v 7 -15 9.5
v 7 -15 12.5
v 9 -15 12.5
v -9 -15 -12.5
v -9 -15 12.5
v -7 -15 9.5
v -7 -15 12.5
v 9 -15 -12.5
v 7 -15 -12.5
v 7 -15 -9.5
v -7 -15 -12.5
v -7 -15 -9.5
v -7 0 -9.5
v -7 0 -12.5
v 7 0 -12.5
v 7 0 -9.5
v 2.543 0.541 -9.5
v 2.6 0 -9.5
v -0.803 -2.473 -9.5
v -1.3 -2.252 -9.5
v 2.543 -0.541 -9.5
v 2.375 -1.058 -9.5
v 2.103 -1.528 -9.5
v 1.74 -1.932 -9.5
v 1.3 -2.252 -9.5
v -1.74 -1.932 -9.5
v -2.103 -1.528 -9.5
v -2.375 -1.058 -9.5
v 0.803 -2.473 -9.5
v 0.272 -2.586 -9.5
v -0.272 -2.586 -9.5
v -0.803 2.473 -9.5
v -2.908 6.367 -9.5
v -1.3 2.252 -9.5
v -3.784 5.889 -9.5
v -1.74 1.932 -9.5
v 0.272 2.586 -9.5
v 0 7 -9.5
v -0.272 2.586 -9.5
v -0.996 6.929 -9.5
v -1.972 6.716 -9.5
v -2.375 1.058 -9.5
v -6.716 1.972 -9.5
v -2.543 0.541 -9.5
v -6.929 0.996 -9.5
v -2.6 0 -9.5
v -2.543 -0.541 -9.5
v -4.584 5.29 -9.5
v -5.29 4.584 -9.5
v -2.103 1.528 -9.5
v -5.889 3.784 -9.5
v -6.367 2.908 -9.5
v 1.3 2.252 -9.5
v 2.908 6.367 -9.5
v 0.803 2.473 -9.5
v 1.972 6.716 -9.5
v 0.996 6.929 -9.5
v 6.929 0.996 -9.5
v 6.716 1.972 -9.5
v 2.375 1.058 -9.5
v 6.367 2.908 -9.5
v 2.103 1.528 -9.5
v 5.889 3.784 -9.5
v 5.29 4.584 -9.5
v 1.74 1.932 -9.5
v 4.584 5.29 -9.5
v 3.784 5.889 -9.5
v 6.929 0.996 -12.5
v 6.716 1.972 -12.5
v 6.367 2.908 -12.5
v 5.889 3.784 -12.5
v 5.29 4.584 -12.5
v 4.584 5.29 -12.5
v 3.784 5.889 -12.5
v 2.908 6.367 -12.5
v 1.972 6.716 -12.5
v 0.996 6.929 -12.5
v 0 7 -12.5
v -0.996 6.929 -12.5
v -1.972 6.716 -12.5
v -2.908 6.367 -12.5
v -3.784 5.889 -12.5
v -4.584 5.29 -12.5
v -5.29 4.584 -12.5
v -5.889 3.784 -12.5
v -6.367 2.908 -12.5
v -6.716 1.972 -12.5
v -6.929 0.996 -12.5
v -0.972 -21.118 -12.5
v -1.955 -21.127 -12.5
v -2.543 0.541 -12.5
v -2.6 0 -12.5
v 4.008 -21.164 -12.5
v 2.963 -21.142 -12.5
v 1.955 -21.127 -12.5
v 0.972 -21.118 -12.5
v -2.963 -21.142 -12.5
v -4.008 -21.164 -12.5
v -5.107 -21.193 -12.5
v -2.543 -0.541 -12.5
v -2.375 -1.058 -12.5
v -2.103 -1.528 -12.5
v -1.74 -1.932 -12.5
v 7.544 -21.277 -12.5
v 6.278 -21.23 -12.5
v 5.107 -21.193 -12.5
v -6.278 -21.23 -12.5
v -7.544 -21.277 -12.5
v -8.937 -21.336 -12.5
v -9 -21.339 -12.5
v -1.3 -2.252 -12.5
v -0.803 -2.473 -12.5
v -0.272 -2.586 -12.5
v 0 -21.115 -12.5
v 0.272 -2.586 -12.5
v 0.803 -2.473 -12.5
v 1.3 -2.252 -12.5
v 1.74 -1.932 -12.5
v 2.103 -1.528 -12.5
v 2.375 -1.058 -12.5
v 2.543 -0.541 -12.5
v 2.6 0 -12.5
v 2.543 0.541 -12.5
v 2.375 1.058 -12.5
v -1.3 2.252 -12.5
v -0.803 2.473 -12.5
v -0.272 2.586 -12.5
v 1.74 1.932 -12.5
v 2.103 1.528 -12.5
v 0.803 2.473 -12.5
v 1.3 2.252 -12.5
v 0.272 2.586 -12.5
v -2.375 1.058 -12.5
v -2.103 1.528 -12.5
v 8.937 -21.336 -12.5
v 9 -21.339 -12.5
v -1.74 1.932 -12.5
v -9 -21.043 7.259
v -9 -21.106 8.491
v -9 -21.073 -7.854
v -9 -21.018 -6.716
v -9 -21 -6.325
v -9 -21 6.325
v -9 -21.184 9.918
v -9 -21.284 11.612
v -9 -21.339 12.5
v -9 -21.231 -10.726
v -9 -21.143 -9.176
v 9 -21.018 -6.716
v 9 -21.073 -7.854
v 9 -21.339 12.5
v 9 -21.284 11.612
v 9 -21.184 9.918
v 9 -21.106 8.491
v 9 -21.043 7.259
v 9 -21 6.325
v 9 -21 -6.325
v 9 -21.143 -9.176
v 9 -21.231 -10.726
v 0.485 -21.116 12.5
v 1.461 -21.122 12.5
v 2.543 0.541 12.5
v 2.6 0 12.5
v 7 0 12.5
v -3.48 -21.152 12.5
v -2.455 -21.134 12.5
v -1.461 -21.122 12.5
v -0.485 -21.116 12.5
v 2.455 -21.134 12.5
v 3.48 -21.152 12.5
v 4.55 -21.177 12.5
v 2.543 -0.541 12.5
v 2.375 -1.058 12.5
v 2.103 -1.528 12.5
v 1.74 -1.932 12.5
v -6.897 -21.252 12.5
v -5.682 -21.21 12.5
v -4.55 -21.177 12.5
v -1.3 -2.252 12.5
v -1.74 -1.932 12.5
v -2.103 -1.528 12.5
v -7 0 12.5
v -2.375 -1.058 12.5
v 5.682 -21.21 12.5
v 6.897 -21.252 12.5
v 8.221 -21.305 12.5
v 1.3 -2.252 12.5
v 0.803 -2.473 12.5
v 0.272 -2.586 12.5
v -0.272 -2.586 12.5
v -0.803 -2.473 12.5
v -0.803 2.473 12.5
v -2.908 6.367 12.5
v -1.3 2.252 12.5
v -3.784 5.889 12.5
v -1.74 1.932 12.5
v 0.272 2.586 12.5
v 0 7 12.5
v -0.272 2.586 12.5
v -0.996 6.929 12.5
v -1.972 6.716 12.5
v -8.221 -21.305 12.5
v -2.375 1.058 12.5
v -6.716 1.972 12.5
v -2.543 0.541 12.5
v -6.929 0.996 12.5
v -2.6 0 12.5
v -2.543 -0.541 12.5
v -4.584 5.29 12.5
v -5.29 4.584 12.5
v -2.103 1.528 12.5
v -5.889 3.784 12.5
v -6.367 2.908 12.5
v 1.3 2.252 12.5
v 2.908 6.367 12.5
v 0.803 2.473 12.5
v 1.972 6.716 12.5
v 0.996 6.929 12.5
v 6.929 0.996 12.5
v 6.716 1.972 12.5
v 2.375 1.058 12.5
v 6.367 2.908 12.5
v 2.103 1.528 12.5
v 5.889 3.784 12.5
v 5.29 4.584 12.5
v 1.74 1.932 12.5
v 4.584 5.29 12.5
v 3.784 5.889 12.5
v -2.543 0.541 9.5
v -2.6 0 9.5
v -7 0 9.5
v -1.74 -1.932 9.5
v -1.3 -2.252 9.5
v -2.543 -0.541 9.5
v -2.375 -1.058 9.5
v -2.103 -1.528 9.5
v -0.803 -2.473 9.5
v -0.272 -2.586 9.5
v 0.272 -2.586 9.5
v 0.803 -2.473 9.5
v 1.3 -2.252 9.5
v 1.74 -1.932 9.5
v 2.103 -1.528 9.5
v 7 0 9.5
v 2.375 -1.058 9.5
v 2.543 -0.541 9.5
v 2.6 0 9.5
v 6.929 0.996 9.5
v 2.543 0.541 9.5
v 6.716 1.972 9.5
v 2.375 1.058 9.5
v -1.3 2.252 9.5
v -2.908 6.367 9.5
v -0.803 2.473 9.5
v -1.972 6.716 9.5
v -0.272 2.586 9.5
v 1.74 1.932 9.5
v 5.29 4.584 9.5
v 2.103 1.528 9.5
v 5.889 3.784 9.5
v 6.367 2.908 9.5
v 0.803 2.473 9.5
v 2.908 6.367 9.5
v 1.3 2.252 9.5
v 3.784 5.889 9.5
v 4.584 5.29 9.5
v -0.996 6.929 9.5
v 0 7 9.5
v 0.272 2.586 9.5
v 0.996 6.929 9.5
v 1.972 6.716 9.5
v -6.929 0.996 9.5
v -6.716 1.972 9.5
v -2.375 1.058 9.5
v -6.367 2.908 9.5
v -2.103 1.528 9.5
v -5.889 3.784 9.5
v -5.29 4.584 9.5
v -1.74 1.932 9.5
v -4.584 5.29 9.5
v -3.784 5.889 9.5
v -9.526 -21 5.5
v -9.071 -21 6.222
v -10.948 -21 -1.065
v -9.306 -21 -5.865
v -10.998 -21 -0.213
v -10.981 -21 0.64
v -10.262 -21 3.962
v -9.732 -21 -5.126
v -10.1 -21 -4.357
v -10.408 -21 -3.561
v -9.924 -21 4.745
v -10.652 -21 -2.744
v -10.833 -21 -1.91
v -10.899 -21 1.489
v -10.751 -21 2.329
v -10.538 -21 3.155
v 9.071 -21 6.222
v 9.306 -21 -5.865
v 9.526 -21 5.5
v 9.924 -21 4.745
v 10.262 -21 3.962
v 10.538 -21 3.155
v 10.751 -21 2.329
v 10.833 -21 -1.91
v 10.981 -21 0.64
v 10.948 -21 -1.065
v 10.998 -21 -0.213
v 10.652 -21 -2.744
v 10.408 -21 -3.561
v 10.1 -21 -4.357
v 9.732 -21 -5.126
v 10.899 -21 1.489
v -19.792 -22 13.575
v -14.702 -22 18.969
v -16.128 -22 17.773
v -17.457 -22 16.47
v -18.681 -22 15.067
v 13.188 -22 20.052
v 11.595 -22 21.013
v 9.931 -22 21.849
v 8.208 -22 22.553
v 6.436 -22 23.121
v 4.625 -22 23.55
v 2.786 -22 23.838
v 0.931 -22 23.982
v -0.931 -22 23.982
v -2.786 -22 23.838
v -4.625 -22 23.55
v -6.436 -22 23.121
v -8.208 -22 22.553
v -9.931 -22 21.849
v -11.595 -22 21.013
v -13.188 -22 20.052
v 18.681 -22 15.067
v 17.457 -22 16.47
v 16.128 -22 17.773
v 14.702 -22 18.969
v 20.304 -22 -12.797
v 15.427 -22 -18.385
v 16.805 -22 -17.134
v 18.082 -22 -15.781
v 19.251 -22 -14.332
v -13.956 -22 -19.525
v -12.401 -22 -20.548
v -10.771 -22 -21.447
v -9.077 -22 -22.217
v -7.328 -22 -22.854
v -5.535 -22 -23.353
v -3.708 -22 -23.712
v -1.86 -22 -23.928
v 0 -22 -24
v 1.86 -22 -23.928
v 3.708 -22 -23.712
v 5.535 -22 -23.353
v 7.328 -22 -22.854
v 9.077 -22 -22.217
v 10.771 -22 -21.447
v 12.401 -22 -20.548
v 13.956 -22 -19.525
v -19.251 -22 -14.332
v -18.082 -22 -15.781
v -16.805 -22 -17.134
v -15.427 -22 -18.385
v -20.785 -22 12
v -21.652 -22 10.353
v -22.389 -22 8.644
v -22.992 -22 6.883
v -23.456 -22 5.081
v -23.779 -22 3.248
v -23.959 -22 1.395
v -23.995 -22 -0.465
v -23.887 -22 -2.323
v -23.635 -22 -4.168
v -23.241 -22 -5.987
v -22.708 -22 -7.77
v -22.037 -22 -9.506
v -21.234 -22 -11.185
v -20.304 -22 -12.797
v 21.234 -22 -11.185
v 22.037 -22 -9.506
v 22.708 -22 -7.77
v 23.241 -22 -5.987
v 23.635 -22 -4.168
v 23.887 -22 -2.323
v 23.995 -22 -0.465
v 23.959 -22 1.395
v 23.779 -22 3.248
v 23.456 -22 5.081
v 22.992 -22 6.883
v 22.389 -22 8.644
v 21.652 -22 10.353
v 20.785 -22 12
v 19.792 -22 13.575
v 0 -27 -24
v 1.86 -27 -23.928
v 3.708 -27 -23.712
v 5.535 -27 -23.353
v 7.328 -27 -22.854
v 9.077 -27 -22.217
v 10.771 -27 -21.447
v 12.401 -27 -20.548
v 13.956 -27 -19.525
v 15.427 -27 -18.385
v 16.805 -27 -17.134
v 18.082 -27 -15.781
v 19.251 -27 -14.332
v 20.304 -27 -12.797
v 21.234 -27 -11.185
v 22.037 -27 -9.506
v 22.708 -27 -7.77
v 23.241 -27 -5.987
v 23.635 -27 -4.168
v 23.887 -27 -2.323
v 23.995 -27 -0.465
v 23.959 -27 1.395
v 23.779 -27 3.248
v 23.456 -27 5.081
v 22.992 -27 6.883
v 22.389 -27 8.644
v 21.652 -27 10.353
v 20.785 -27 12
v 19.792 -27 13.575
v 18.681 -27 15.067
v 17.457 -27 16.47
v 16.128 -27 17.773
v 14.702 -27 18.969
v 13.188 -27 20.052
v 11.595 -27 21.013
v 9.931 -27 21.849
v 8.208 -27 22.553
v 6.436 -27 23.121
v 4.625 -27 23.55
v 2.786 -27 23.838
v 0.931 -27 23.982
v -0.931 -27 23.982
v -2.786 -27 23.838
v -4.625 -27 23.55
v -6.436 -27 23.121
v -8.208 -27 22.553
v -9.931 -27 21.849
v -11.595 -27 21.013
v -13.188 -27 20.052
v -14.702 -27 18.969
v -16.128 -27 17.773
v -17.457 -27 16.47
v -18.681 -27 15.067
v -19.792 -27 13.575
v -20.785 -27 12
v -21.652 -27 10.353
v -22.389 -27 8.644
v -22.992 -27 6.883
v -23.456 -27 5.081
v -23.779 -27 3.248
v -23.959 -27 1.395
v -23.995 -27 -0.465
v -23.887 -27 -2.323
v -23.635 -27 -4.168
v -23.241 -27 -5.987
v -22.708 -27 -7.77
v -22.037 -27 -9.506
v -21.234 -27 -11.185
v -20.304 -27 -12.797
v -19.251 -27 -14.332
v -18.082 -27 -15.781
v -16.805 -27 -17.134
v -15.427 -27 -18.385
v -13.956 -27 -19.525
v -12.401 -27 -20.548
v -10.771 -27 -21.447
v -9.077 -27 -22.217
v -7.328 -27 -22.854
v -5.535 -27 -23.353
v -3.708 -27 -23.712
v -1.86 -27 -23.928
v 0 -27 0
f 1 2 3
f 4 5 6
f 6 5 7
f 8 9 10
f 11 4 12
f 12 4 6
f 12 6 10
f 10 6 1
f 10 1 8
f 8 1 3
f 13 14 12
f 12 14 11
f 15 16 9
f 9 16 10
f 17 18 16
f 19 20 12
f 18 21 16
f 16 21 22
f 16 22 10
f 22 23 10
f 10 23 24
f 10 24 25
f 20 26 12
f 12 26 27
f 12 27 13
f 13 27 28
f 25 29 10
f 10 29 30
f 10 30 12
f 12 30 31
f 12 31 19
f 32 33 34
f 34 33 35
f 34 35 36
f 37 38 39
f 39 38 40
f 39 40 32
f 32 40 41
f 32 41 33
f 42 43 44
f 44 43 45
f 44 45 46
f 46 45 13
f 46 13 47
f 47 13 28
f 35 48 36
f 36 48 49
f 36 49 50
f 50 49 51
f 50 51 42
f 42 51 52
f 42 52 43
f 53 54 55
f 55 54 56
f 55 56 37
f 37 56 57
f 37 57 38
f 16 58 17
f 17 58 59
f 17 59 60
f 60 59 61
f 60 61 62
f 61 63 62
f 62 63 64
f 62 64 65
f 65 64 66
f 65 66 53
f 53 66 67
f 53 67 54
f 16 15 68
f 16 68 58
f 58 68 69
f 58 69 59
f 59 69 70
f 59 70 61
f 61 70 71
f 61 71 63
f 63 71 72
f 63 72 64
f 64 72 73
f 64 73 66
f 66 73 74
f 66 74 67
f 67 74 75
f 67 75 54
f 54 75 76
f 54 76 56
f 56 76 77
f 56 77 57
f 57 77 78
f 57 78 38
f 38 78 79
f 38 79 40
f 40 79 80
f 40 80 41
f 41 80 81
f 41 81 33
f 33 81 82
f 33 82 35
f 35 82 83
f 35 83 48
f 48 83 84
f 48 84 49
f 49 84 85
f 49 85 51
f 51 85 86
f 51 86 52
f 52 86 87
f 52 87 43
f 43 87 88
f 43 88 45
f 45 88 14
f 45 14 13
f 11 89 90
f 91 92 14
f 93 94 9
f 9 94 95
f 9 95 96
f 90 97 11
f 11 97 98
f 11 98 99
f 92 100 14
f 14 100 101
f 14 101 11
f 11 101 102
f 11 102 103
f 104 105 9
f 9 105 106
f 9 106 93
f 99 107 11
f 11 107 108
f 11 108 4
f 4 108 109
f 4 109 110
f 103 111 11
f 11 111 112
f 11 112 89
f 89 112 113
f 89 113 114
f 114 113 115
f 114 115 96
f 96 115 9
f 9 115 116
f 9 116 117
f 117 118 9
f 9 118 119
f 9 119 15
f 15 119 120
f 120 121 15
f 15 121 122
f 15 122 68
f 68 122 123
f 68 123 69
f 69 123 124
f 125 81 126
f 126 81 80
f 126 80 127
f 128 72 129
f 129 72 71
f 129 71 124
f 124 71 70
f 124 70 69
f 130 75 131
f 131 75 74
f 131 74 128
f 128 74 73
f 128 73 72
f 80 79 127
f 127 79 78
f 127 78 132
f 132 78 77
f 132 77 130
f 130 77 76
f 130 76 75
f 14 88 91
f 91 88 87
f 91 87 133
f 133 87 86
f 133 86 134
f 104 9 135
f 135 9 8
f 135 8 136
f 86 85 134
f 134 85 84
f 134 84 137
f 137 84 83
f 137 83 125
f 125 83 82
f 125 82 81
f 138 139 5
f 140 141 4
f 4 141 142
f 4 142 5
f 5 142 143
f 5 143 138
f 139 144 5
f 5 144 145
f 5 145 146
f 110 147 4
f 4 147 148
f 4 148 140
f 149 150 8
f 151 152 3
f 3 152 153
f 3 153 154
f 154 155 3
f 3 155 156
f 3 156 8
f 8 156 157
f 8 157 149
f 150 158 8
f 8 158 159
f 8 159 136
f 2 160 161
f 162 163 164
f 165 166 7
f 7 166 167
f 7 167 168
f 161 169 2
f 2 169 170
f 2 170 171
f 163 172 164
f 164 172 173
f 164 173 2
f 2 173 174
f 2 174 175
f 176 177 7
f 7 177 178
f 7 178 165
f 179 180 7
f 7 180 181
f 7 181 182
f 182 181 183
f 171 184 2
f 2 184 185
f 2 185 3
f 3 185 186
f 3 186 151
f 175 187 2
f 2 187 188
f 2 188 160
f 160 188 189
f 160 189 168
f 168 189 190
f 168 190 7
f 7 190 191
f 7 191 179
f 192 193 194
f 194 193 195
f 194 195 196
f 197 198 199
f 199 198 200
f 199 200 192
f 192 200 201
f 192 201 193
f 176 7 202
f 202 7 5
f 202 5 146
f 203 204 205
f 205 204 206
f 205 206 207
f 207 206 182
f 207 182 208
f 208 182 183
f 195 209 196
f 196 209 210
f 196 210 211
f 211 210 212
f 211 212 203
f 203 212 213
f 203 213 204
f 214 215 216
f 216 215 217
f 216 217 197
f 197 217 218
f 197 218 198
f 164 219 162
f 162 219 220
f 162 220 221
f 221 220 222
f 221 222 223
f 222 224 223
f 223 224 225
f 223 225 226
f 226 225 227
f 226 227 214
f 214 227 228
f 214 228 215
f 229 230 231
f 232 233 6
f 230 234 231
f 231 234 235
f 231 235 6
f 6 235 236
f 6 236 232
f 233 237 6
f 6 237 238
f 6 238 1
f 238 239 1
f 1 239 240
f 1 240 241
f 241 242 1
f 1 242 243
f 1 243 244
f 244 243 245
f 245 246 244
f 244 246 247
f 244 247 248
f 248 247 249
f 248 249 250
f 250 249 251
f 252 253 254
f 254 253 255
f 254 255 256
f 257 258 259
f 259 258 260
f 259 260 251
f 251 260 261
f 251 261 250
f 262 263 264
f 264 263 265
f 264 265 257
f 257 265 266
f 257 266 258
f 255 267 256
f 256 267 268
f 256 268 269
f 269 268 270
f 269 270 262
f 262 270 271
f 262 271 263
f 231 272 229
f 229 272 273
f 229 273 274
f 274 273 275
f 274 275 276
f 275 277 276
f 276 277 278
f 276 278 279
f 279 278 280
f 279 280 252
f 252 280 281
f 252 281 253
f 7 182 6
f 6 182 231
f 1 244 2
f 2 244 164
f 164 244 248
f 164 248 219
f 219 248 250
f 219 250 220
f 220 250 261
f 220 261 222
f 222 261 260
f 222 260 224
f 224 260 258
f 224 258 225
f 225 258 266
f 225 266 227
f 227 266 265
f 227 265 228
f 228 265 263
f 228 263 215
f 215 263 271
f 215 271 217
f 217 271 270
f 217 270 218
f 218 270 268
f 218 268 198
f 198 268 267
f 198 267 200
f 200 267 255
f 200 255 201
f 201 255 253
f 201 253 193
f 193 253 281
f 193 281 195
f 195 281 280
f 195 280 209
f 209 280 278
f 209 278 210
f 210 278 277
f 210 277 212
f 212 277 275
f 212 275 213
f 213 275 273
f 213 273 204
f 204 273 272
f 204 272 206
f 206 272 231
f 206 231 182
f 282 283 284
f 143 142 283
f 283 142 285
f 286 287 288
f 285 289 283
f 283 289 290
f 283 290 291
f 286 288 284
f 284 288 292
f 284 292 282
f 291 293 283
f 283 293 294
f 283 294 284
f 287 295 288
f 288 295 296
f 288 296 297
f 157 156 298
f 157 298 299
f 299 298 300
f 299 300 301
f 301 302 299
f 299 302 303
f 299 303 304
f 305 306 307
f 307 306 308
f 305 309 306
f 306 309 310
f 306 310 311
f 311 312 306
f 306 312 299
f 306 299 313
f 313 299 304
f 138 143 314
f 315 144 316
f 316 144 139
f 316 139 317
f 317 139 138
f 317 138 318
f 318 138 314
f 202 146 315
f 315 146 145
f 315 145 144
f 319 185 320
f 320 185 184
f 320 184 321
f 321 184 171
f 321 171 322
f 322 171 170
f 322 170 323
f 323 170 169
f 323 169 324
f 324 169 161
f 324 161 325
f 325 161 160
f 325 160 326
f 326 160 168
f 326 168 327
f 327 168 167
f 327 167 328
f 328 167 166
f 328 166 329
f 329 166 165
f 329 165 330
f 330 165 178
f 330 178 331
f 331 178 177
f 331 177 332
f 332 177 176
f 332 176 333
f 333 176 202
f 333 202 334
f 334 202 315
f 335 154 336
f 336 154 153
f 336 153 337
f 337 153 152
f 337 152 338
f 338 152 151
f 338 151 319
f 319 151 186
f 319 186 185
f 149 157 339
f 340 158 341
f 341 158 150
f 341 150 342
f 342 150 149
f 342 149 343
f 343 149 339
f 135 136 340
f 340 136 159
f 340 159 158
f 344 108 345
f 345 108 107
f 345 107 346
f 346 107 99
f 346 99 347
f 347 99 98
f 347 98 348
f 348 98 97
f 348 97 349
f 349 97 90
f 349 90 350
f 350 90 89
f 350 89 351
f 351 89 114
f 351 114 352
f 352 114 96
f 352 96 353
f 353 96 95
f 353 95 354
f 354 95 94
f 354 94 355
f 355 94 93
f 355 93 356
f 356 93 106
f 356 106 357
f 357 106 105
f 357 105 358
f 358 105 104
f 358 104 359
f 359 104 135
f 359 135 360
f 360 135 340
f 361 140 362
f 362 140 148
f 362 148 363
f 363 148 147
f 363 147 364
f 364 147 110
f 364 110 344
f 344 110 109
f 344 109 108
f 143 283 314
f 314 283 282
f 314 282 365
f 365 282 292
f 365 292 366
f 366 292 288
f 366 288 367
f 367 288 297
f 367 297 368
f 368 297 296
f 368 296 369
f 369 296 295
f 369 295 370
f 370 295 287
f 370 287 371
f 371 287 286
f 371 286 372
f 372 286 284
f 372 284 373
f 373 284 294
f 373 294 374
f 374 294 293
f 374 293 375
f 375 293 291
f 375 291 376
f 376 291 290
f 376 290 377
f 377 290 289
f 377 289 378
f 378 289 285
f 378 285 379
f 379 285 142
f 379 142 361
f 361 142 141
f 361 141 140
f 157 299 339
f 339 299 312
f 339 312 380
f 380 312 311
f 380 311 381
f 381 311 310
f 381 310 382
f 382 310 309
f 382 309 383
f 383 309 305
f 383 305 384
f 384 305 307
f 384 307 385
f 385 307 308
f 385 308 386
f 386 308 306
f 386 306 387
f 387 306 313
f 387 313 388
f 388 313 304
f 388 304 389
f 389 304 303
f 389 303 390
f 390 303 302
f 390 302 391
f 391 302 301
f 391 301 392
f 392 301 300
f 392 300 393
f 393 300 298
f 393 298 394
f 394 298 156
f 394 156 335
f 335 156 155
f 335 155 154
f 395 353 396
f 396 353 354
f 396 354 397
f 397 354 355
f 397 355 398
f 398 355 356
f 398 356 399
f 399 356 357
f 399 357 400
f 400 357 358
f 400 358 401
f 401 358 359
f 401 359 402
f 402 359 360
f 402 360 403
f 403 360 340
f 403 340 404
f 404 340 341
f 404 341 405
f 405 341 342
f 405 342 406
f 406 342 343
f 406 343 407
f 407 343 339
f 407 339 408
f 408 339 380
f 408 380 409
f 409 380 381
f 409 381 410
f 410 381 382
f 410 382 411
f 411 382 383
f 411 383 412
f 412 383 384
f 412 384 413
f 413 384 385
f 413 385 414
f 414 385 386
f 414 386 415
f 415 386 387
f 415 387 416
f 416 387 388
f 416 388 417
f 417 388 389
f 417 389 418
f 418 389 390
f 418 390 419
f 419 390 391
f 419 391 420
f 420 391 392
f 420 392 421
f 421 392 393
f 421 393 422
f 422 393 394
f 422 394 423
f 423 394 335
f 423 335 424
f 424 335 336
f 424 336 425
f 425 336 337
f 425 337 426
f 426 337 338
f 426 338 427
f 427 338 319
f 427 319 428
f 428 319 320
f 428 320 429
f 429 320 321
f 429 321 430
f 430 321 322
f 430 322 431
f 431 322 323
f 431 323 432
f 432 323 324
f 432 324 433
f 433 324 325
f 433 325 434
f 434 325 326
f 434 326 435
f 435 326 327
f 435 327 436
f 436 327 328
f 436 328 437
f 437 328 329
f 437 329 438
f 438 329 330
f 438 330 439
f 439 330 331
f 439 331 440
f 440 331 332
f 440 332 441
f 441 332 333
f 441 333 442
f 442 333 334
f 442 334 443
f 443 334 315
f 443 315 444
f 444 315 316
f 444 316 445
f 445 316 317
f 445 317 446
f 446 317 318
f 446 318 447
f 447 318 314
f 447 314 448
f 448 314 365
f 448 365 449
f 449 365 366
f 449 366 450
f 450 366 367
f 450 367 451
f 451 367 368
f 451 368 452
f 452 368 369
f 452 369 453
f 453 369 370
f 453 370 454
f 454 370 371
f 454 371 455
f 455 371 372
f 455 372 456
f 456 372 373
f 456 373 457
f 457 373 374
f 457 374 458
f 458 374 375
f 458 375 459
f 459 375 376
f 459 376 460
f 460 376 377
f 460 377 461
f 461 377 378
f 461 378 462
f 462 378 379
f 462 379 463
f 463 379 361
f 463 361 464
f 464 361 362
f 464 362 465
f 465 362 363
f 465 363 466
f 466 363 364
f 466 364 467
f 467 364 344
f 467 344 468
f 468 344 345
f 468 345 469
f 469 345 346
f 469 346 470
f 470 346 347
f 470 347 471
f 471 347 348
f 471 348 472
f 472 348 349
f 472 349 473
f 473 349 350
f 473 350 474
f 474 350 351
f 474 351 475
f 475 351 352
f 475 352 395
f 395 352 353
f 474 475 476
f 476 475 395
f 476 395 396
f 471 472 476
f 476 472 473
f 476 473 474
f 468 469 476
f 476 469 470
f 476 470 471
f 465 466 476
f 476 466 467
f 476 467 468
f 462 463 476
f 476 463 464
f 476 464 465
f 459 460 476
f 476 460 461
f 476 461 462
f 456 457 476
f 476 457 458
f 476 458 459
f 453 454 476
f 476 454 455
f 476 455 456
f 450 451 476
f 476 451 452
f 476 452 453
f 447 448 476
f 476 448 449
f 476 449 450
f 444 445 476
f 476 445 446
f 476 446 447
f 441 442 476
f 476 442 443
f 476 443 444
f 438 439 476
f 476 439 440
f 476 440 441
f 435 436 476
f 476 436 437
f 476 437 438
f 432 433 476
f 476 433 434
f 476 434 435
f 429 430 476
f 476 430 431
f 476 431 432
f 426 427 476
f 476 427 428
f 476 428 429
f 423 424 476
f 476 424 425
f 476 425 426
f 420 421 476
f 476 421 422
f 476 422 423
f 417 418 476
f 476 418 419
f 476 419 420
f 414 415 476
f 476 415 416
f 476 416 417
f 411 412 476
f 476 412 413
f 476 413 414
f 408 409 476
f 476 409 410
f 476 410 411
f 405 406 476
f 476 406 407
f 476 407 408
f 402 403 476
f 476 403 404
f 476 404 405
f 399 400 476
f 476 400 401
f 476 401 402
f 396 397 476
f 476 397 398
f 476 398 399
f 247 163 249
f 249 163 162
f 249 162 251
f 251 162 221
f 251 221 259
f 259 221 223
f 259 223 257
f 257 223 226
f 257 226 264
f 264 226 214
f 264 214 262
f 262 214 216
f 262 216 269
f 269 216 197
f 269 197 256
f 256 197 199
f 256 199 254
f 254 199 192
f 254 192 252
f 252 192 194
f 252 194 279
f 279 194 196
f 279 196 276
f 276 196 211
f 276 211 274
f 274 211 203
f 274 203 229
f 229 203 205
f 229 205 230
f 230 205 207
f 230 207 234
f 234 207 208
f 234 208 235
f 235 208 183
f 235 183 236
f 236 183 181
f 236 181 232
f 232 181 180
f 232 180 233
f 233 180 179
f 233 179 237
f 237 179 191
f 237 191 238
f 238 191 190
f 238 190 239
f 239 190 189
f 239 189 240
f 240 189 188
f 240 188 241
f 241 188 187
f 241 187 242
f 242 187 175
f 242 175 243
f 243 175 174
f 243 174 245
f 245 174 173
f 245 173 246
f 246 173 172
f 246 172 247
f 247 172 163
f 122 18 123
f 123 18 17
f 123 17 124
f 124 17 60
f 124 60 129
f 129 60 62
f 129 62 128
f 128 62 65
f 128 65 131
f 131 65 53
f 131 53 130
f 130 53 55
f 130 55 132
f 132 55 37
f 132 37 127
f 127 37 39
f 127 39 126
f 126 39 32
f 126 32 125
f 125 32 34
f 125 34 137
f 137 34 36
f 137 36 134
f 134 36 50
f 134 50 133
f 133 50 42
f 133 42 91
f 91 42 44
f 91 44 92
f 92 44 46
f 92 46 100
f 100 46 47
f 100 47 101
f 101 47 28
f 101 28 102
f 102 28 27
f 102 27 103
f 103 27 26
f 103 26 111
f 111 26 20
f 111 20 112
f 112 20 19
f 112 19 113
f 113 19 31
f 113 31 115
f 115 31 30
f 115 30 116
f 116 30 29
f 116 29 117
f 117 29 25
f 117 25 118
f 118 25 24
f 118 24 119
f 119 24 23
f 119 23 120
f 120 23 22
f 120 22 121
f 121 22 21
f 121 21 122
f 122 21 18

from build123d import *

# Parameters (mm, degrees)
OREJA_ANTERIOR_DEPTH         = 3
OREJA_POSTERIOR_DEPTH        = 3
SKETCH3_W                    = 18
SKETCH3_H                    = 8
PUENTE_DEPTH                 = 25
SKETCH5_R                    = 2.6
AGUJERO_EJE_DESVIACION_DEPTH = 1000


with BuildPart() as part:
    # Sketch1 → Oreja_anterior (new body)
    with BuildSketch(Plane.XY.offset(-12.5)):
        with BuildLine():
            Line((7, 0), (7, -16))
            ThreePointArc((7, -16), (0, -23), (-7, -16))
            Line((-7, -16), (-7, 0))
            ThreePointArc((-7, 0), (0, 7), (7, 0))
        make_face()
    extrude(amount=OREJA_ANTERIOR_DEPTH)



with BuildPart() as body_2:
    # Sketch2 → Oreja_posterior (new body)
    with BuildSketch(Plane.XY.offset(9.5)):
        with BuildLine():
            Line((7, 0), (7, -16))
            ThreePointArc((7, -16), (0, -23), (-7, -16))
            Line((-7, -16), (-7, 0))
            ThreePointArc((-7, 0), (0, 7), (7, 0))
        make_face()
    extrude(amount=OREJA_POSTERIOR_DEPTH)


with BuildPart() as part_1:
    add(part.part)

    add(body_2.part)  # Puente merges body 2
    # Sketch3 → Puente (add)
    with BuildSketch(Plane.XY.offset(-12.5)):
        with Locations((0, -19)):
            Rectangle(SKETCH3_W, SKETCH3_H)
    extrude(amount=PUENTE_DEPTH)

    # Sketch4 → Brida_mano (revolve)
    with BuildSketch(Plane.XY, mode=Mode.PRIVATE) as brida_mano_sk:
        Polygon((0, -21), (11, -21), (24, -22), (24, -27), (11, -27), (0, -27), align=None)
    revolve(brida_mano_sk.sketch.rotate(Axis((0, -31, 0), (0, 1, 0)), 90), axis=Axis((0, -31, 0), (0, 1, 0)))

    # Sketch5 → Agujero_eje_desviacion (cut, symmetric)
    with BuildSketch(Plane.XY):
        Circle(SKETCH5_R)
    extrude(amount=AGUJERO_EJE_DESVIACION_DEPTH, both=True, mode=Mode.SUBTRACT)


solid = part_1.part
